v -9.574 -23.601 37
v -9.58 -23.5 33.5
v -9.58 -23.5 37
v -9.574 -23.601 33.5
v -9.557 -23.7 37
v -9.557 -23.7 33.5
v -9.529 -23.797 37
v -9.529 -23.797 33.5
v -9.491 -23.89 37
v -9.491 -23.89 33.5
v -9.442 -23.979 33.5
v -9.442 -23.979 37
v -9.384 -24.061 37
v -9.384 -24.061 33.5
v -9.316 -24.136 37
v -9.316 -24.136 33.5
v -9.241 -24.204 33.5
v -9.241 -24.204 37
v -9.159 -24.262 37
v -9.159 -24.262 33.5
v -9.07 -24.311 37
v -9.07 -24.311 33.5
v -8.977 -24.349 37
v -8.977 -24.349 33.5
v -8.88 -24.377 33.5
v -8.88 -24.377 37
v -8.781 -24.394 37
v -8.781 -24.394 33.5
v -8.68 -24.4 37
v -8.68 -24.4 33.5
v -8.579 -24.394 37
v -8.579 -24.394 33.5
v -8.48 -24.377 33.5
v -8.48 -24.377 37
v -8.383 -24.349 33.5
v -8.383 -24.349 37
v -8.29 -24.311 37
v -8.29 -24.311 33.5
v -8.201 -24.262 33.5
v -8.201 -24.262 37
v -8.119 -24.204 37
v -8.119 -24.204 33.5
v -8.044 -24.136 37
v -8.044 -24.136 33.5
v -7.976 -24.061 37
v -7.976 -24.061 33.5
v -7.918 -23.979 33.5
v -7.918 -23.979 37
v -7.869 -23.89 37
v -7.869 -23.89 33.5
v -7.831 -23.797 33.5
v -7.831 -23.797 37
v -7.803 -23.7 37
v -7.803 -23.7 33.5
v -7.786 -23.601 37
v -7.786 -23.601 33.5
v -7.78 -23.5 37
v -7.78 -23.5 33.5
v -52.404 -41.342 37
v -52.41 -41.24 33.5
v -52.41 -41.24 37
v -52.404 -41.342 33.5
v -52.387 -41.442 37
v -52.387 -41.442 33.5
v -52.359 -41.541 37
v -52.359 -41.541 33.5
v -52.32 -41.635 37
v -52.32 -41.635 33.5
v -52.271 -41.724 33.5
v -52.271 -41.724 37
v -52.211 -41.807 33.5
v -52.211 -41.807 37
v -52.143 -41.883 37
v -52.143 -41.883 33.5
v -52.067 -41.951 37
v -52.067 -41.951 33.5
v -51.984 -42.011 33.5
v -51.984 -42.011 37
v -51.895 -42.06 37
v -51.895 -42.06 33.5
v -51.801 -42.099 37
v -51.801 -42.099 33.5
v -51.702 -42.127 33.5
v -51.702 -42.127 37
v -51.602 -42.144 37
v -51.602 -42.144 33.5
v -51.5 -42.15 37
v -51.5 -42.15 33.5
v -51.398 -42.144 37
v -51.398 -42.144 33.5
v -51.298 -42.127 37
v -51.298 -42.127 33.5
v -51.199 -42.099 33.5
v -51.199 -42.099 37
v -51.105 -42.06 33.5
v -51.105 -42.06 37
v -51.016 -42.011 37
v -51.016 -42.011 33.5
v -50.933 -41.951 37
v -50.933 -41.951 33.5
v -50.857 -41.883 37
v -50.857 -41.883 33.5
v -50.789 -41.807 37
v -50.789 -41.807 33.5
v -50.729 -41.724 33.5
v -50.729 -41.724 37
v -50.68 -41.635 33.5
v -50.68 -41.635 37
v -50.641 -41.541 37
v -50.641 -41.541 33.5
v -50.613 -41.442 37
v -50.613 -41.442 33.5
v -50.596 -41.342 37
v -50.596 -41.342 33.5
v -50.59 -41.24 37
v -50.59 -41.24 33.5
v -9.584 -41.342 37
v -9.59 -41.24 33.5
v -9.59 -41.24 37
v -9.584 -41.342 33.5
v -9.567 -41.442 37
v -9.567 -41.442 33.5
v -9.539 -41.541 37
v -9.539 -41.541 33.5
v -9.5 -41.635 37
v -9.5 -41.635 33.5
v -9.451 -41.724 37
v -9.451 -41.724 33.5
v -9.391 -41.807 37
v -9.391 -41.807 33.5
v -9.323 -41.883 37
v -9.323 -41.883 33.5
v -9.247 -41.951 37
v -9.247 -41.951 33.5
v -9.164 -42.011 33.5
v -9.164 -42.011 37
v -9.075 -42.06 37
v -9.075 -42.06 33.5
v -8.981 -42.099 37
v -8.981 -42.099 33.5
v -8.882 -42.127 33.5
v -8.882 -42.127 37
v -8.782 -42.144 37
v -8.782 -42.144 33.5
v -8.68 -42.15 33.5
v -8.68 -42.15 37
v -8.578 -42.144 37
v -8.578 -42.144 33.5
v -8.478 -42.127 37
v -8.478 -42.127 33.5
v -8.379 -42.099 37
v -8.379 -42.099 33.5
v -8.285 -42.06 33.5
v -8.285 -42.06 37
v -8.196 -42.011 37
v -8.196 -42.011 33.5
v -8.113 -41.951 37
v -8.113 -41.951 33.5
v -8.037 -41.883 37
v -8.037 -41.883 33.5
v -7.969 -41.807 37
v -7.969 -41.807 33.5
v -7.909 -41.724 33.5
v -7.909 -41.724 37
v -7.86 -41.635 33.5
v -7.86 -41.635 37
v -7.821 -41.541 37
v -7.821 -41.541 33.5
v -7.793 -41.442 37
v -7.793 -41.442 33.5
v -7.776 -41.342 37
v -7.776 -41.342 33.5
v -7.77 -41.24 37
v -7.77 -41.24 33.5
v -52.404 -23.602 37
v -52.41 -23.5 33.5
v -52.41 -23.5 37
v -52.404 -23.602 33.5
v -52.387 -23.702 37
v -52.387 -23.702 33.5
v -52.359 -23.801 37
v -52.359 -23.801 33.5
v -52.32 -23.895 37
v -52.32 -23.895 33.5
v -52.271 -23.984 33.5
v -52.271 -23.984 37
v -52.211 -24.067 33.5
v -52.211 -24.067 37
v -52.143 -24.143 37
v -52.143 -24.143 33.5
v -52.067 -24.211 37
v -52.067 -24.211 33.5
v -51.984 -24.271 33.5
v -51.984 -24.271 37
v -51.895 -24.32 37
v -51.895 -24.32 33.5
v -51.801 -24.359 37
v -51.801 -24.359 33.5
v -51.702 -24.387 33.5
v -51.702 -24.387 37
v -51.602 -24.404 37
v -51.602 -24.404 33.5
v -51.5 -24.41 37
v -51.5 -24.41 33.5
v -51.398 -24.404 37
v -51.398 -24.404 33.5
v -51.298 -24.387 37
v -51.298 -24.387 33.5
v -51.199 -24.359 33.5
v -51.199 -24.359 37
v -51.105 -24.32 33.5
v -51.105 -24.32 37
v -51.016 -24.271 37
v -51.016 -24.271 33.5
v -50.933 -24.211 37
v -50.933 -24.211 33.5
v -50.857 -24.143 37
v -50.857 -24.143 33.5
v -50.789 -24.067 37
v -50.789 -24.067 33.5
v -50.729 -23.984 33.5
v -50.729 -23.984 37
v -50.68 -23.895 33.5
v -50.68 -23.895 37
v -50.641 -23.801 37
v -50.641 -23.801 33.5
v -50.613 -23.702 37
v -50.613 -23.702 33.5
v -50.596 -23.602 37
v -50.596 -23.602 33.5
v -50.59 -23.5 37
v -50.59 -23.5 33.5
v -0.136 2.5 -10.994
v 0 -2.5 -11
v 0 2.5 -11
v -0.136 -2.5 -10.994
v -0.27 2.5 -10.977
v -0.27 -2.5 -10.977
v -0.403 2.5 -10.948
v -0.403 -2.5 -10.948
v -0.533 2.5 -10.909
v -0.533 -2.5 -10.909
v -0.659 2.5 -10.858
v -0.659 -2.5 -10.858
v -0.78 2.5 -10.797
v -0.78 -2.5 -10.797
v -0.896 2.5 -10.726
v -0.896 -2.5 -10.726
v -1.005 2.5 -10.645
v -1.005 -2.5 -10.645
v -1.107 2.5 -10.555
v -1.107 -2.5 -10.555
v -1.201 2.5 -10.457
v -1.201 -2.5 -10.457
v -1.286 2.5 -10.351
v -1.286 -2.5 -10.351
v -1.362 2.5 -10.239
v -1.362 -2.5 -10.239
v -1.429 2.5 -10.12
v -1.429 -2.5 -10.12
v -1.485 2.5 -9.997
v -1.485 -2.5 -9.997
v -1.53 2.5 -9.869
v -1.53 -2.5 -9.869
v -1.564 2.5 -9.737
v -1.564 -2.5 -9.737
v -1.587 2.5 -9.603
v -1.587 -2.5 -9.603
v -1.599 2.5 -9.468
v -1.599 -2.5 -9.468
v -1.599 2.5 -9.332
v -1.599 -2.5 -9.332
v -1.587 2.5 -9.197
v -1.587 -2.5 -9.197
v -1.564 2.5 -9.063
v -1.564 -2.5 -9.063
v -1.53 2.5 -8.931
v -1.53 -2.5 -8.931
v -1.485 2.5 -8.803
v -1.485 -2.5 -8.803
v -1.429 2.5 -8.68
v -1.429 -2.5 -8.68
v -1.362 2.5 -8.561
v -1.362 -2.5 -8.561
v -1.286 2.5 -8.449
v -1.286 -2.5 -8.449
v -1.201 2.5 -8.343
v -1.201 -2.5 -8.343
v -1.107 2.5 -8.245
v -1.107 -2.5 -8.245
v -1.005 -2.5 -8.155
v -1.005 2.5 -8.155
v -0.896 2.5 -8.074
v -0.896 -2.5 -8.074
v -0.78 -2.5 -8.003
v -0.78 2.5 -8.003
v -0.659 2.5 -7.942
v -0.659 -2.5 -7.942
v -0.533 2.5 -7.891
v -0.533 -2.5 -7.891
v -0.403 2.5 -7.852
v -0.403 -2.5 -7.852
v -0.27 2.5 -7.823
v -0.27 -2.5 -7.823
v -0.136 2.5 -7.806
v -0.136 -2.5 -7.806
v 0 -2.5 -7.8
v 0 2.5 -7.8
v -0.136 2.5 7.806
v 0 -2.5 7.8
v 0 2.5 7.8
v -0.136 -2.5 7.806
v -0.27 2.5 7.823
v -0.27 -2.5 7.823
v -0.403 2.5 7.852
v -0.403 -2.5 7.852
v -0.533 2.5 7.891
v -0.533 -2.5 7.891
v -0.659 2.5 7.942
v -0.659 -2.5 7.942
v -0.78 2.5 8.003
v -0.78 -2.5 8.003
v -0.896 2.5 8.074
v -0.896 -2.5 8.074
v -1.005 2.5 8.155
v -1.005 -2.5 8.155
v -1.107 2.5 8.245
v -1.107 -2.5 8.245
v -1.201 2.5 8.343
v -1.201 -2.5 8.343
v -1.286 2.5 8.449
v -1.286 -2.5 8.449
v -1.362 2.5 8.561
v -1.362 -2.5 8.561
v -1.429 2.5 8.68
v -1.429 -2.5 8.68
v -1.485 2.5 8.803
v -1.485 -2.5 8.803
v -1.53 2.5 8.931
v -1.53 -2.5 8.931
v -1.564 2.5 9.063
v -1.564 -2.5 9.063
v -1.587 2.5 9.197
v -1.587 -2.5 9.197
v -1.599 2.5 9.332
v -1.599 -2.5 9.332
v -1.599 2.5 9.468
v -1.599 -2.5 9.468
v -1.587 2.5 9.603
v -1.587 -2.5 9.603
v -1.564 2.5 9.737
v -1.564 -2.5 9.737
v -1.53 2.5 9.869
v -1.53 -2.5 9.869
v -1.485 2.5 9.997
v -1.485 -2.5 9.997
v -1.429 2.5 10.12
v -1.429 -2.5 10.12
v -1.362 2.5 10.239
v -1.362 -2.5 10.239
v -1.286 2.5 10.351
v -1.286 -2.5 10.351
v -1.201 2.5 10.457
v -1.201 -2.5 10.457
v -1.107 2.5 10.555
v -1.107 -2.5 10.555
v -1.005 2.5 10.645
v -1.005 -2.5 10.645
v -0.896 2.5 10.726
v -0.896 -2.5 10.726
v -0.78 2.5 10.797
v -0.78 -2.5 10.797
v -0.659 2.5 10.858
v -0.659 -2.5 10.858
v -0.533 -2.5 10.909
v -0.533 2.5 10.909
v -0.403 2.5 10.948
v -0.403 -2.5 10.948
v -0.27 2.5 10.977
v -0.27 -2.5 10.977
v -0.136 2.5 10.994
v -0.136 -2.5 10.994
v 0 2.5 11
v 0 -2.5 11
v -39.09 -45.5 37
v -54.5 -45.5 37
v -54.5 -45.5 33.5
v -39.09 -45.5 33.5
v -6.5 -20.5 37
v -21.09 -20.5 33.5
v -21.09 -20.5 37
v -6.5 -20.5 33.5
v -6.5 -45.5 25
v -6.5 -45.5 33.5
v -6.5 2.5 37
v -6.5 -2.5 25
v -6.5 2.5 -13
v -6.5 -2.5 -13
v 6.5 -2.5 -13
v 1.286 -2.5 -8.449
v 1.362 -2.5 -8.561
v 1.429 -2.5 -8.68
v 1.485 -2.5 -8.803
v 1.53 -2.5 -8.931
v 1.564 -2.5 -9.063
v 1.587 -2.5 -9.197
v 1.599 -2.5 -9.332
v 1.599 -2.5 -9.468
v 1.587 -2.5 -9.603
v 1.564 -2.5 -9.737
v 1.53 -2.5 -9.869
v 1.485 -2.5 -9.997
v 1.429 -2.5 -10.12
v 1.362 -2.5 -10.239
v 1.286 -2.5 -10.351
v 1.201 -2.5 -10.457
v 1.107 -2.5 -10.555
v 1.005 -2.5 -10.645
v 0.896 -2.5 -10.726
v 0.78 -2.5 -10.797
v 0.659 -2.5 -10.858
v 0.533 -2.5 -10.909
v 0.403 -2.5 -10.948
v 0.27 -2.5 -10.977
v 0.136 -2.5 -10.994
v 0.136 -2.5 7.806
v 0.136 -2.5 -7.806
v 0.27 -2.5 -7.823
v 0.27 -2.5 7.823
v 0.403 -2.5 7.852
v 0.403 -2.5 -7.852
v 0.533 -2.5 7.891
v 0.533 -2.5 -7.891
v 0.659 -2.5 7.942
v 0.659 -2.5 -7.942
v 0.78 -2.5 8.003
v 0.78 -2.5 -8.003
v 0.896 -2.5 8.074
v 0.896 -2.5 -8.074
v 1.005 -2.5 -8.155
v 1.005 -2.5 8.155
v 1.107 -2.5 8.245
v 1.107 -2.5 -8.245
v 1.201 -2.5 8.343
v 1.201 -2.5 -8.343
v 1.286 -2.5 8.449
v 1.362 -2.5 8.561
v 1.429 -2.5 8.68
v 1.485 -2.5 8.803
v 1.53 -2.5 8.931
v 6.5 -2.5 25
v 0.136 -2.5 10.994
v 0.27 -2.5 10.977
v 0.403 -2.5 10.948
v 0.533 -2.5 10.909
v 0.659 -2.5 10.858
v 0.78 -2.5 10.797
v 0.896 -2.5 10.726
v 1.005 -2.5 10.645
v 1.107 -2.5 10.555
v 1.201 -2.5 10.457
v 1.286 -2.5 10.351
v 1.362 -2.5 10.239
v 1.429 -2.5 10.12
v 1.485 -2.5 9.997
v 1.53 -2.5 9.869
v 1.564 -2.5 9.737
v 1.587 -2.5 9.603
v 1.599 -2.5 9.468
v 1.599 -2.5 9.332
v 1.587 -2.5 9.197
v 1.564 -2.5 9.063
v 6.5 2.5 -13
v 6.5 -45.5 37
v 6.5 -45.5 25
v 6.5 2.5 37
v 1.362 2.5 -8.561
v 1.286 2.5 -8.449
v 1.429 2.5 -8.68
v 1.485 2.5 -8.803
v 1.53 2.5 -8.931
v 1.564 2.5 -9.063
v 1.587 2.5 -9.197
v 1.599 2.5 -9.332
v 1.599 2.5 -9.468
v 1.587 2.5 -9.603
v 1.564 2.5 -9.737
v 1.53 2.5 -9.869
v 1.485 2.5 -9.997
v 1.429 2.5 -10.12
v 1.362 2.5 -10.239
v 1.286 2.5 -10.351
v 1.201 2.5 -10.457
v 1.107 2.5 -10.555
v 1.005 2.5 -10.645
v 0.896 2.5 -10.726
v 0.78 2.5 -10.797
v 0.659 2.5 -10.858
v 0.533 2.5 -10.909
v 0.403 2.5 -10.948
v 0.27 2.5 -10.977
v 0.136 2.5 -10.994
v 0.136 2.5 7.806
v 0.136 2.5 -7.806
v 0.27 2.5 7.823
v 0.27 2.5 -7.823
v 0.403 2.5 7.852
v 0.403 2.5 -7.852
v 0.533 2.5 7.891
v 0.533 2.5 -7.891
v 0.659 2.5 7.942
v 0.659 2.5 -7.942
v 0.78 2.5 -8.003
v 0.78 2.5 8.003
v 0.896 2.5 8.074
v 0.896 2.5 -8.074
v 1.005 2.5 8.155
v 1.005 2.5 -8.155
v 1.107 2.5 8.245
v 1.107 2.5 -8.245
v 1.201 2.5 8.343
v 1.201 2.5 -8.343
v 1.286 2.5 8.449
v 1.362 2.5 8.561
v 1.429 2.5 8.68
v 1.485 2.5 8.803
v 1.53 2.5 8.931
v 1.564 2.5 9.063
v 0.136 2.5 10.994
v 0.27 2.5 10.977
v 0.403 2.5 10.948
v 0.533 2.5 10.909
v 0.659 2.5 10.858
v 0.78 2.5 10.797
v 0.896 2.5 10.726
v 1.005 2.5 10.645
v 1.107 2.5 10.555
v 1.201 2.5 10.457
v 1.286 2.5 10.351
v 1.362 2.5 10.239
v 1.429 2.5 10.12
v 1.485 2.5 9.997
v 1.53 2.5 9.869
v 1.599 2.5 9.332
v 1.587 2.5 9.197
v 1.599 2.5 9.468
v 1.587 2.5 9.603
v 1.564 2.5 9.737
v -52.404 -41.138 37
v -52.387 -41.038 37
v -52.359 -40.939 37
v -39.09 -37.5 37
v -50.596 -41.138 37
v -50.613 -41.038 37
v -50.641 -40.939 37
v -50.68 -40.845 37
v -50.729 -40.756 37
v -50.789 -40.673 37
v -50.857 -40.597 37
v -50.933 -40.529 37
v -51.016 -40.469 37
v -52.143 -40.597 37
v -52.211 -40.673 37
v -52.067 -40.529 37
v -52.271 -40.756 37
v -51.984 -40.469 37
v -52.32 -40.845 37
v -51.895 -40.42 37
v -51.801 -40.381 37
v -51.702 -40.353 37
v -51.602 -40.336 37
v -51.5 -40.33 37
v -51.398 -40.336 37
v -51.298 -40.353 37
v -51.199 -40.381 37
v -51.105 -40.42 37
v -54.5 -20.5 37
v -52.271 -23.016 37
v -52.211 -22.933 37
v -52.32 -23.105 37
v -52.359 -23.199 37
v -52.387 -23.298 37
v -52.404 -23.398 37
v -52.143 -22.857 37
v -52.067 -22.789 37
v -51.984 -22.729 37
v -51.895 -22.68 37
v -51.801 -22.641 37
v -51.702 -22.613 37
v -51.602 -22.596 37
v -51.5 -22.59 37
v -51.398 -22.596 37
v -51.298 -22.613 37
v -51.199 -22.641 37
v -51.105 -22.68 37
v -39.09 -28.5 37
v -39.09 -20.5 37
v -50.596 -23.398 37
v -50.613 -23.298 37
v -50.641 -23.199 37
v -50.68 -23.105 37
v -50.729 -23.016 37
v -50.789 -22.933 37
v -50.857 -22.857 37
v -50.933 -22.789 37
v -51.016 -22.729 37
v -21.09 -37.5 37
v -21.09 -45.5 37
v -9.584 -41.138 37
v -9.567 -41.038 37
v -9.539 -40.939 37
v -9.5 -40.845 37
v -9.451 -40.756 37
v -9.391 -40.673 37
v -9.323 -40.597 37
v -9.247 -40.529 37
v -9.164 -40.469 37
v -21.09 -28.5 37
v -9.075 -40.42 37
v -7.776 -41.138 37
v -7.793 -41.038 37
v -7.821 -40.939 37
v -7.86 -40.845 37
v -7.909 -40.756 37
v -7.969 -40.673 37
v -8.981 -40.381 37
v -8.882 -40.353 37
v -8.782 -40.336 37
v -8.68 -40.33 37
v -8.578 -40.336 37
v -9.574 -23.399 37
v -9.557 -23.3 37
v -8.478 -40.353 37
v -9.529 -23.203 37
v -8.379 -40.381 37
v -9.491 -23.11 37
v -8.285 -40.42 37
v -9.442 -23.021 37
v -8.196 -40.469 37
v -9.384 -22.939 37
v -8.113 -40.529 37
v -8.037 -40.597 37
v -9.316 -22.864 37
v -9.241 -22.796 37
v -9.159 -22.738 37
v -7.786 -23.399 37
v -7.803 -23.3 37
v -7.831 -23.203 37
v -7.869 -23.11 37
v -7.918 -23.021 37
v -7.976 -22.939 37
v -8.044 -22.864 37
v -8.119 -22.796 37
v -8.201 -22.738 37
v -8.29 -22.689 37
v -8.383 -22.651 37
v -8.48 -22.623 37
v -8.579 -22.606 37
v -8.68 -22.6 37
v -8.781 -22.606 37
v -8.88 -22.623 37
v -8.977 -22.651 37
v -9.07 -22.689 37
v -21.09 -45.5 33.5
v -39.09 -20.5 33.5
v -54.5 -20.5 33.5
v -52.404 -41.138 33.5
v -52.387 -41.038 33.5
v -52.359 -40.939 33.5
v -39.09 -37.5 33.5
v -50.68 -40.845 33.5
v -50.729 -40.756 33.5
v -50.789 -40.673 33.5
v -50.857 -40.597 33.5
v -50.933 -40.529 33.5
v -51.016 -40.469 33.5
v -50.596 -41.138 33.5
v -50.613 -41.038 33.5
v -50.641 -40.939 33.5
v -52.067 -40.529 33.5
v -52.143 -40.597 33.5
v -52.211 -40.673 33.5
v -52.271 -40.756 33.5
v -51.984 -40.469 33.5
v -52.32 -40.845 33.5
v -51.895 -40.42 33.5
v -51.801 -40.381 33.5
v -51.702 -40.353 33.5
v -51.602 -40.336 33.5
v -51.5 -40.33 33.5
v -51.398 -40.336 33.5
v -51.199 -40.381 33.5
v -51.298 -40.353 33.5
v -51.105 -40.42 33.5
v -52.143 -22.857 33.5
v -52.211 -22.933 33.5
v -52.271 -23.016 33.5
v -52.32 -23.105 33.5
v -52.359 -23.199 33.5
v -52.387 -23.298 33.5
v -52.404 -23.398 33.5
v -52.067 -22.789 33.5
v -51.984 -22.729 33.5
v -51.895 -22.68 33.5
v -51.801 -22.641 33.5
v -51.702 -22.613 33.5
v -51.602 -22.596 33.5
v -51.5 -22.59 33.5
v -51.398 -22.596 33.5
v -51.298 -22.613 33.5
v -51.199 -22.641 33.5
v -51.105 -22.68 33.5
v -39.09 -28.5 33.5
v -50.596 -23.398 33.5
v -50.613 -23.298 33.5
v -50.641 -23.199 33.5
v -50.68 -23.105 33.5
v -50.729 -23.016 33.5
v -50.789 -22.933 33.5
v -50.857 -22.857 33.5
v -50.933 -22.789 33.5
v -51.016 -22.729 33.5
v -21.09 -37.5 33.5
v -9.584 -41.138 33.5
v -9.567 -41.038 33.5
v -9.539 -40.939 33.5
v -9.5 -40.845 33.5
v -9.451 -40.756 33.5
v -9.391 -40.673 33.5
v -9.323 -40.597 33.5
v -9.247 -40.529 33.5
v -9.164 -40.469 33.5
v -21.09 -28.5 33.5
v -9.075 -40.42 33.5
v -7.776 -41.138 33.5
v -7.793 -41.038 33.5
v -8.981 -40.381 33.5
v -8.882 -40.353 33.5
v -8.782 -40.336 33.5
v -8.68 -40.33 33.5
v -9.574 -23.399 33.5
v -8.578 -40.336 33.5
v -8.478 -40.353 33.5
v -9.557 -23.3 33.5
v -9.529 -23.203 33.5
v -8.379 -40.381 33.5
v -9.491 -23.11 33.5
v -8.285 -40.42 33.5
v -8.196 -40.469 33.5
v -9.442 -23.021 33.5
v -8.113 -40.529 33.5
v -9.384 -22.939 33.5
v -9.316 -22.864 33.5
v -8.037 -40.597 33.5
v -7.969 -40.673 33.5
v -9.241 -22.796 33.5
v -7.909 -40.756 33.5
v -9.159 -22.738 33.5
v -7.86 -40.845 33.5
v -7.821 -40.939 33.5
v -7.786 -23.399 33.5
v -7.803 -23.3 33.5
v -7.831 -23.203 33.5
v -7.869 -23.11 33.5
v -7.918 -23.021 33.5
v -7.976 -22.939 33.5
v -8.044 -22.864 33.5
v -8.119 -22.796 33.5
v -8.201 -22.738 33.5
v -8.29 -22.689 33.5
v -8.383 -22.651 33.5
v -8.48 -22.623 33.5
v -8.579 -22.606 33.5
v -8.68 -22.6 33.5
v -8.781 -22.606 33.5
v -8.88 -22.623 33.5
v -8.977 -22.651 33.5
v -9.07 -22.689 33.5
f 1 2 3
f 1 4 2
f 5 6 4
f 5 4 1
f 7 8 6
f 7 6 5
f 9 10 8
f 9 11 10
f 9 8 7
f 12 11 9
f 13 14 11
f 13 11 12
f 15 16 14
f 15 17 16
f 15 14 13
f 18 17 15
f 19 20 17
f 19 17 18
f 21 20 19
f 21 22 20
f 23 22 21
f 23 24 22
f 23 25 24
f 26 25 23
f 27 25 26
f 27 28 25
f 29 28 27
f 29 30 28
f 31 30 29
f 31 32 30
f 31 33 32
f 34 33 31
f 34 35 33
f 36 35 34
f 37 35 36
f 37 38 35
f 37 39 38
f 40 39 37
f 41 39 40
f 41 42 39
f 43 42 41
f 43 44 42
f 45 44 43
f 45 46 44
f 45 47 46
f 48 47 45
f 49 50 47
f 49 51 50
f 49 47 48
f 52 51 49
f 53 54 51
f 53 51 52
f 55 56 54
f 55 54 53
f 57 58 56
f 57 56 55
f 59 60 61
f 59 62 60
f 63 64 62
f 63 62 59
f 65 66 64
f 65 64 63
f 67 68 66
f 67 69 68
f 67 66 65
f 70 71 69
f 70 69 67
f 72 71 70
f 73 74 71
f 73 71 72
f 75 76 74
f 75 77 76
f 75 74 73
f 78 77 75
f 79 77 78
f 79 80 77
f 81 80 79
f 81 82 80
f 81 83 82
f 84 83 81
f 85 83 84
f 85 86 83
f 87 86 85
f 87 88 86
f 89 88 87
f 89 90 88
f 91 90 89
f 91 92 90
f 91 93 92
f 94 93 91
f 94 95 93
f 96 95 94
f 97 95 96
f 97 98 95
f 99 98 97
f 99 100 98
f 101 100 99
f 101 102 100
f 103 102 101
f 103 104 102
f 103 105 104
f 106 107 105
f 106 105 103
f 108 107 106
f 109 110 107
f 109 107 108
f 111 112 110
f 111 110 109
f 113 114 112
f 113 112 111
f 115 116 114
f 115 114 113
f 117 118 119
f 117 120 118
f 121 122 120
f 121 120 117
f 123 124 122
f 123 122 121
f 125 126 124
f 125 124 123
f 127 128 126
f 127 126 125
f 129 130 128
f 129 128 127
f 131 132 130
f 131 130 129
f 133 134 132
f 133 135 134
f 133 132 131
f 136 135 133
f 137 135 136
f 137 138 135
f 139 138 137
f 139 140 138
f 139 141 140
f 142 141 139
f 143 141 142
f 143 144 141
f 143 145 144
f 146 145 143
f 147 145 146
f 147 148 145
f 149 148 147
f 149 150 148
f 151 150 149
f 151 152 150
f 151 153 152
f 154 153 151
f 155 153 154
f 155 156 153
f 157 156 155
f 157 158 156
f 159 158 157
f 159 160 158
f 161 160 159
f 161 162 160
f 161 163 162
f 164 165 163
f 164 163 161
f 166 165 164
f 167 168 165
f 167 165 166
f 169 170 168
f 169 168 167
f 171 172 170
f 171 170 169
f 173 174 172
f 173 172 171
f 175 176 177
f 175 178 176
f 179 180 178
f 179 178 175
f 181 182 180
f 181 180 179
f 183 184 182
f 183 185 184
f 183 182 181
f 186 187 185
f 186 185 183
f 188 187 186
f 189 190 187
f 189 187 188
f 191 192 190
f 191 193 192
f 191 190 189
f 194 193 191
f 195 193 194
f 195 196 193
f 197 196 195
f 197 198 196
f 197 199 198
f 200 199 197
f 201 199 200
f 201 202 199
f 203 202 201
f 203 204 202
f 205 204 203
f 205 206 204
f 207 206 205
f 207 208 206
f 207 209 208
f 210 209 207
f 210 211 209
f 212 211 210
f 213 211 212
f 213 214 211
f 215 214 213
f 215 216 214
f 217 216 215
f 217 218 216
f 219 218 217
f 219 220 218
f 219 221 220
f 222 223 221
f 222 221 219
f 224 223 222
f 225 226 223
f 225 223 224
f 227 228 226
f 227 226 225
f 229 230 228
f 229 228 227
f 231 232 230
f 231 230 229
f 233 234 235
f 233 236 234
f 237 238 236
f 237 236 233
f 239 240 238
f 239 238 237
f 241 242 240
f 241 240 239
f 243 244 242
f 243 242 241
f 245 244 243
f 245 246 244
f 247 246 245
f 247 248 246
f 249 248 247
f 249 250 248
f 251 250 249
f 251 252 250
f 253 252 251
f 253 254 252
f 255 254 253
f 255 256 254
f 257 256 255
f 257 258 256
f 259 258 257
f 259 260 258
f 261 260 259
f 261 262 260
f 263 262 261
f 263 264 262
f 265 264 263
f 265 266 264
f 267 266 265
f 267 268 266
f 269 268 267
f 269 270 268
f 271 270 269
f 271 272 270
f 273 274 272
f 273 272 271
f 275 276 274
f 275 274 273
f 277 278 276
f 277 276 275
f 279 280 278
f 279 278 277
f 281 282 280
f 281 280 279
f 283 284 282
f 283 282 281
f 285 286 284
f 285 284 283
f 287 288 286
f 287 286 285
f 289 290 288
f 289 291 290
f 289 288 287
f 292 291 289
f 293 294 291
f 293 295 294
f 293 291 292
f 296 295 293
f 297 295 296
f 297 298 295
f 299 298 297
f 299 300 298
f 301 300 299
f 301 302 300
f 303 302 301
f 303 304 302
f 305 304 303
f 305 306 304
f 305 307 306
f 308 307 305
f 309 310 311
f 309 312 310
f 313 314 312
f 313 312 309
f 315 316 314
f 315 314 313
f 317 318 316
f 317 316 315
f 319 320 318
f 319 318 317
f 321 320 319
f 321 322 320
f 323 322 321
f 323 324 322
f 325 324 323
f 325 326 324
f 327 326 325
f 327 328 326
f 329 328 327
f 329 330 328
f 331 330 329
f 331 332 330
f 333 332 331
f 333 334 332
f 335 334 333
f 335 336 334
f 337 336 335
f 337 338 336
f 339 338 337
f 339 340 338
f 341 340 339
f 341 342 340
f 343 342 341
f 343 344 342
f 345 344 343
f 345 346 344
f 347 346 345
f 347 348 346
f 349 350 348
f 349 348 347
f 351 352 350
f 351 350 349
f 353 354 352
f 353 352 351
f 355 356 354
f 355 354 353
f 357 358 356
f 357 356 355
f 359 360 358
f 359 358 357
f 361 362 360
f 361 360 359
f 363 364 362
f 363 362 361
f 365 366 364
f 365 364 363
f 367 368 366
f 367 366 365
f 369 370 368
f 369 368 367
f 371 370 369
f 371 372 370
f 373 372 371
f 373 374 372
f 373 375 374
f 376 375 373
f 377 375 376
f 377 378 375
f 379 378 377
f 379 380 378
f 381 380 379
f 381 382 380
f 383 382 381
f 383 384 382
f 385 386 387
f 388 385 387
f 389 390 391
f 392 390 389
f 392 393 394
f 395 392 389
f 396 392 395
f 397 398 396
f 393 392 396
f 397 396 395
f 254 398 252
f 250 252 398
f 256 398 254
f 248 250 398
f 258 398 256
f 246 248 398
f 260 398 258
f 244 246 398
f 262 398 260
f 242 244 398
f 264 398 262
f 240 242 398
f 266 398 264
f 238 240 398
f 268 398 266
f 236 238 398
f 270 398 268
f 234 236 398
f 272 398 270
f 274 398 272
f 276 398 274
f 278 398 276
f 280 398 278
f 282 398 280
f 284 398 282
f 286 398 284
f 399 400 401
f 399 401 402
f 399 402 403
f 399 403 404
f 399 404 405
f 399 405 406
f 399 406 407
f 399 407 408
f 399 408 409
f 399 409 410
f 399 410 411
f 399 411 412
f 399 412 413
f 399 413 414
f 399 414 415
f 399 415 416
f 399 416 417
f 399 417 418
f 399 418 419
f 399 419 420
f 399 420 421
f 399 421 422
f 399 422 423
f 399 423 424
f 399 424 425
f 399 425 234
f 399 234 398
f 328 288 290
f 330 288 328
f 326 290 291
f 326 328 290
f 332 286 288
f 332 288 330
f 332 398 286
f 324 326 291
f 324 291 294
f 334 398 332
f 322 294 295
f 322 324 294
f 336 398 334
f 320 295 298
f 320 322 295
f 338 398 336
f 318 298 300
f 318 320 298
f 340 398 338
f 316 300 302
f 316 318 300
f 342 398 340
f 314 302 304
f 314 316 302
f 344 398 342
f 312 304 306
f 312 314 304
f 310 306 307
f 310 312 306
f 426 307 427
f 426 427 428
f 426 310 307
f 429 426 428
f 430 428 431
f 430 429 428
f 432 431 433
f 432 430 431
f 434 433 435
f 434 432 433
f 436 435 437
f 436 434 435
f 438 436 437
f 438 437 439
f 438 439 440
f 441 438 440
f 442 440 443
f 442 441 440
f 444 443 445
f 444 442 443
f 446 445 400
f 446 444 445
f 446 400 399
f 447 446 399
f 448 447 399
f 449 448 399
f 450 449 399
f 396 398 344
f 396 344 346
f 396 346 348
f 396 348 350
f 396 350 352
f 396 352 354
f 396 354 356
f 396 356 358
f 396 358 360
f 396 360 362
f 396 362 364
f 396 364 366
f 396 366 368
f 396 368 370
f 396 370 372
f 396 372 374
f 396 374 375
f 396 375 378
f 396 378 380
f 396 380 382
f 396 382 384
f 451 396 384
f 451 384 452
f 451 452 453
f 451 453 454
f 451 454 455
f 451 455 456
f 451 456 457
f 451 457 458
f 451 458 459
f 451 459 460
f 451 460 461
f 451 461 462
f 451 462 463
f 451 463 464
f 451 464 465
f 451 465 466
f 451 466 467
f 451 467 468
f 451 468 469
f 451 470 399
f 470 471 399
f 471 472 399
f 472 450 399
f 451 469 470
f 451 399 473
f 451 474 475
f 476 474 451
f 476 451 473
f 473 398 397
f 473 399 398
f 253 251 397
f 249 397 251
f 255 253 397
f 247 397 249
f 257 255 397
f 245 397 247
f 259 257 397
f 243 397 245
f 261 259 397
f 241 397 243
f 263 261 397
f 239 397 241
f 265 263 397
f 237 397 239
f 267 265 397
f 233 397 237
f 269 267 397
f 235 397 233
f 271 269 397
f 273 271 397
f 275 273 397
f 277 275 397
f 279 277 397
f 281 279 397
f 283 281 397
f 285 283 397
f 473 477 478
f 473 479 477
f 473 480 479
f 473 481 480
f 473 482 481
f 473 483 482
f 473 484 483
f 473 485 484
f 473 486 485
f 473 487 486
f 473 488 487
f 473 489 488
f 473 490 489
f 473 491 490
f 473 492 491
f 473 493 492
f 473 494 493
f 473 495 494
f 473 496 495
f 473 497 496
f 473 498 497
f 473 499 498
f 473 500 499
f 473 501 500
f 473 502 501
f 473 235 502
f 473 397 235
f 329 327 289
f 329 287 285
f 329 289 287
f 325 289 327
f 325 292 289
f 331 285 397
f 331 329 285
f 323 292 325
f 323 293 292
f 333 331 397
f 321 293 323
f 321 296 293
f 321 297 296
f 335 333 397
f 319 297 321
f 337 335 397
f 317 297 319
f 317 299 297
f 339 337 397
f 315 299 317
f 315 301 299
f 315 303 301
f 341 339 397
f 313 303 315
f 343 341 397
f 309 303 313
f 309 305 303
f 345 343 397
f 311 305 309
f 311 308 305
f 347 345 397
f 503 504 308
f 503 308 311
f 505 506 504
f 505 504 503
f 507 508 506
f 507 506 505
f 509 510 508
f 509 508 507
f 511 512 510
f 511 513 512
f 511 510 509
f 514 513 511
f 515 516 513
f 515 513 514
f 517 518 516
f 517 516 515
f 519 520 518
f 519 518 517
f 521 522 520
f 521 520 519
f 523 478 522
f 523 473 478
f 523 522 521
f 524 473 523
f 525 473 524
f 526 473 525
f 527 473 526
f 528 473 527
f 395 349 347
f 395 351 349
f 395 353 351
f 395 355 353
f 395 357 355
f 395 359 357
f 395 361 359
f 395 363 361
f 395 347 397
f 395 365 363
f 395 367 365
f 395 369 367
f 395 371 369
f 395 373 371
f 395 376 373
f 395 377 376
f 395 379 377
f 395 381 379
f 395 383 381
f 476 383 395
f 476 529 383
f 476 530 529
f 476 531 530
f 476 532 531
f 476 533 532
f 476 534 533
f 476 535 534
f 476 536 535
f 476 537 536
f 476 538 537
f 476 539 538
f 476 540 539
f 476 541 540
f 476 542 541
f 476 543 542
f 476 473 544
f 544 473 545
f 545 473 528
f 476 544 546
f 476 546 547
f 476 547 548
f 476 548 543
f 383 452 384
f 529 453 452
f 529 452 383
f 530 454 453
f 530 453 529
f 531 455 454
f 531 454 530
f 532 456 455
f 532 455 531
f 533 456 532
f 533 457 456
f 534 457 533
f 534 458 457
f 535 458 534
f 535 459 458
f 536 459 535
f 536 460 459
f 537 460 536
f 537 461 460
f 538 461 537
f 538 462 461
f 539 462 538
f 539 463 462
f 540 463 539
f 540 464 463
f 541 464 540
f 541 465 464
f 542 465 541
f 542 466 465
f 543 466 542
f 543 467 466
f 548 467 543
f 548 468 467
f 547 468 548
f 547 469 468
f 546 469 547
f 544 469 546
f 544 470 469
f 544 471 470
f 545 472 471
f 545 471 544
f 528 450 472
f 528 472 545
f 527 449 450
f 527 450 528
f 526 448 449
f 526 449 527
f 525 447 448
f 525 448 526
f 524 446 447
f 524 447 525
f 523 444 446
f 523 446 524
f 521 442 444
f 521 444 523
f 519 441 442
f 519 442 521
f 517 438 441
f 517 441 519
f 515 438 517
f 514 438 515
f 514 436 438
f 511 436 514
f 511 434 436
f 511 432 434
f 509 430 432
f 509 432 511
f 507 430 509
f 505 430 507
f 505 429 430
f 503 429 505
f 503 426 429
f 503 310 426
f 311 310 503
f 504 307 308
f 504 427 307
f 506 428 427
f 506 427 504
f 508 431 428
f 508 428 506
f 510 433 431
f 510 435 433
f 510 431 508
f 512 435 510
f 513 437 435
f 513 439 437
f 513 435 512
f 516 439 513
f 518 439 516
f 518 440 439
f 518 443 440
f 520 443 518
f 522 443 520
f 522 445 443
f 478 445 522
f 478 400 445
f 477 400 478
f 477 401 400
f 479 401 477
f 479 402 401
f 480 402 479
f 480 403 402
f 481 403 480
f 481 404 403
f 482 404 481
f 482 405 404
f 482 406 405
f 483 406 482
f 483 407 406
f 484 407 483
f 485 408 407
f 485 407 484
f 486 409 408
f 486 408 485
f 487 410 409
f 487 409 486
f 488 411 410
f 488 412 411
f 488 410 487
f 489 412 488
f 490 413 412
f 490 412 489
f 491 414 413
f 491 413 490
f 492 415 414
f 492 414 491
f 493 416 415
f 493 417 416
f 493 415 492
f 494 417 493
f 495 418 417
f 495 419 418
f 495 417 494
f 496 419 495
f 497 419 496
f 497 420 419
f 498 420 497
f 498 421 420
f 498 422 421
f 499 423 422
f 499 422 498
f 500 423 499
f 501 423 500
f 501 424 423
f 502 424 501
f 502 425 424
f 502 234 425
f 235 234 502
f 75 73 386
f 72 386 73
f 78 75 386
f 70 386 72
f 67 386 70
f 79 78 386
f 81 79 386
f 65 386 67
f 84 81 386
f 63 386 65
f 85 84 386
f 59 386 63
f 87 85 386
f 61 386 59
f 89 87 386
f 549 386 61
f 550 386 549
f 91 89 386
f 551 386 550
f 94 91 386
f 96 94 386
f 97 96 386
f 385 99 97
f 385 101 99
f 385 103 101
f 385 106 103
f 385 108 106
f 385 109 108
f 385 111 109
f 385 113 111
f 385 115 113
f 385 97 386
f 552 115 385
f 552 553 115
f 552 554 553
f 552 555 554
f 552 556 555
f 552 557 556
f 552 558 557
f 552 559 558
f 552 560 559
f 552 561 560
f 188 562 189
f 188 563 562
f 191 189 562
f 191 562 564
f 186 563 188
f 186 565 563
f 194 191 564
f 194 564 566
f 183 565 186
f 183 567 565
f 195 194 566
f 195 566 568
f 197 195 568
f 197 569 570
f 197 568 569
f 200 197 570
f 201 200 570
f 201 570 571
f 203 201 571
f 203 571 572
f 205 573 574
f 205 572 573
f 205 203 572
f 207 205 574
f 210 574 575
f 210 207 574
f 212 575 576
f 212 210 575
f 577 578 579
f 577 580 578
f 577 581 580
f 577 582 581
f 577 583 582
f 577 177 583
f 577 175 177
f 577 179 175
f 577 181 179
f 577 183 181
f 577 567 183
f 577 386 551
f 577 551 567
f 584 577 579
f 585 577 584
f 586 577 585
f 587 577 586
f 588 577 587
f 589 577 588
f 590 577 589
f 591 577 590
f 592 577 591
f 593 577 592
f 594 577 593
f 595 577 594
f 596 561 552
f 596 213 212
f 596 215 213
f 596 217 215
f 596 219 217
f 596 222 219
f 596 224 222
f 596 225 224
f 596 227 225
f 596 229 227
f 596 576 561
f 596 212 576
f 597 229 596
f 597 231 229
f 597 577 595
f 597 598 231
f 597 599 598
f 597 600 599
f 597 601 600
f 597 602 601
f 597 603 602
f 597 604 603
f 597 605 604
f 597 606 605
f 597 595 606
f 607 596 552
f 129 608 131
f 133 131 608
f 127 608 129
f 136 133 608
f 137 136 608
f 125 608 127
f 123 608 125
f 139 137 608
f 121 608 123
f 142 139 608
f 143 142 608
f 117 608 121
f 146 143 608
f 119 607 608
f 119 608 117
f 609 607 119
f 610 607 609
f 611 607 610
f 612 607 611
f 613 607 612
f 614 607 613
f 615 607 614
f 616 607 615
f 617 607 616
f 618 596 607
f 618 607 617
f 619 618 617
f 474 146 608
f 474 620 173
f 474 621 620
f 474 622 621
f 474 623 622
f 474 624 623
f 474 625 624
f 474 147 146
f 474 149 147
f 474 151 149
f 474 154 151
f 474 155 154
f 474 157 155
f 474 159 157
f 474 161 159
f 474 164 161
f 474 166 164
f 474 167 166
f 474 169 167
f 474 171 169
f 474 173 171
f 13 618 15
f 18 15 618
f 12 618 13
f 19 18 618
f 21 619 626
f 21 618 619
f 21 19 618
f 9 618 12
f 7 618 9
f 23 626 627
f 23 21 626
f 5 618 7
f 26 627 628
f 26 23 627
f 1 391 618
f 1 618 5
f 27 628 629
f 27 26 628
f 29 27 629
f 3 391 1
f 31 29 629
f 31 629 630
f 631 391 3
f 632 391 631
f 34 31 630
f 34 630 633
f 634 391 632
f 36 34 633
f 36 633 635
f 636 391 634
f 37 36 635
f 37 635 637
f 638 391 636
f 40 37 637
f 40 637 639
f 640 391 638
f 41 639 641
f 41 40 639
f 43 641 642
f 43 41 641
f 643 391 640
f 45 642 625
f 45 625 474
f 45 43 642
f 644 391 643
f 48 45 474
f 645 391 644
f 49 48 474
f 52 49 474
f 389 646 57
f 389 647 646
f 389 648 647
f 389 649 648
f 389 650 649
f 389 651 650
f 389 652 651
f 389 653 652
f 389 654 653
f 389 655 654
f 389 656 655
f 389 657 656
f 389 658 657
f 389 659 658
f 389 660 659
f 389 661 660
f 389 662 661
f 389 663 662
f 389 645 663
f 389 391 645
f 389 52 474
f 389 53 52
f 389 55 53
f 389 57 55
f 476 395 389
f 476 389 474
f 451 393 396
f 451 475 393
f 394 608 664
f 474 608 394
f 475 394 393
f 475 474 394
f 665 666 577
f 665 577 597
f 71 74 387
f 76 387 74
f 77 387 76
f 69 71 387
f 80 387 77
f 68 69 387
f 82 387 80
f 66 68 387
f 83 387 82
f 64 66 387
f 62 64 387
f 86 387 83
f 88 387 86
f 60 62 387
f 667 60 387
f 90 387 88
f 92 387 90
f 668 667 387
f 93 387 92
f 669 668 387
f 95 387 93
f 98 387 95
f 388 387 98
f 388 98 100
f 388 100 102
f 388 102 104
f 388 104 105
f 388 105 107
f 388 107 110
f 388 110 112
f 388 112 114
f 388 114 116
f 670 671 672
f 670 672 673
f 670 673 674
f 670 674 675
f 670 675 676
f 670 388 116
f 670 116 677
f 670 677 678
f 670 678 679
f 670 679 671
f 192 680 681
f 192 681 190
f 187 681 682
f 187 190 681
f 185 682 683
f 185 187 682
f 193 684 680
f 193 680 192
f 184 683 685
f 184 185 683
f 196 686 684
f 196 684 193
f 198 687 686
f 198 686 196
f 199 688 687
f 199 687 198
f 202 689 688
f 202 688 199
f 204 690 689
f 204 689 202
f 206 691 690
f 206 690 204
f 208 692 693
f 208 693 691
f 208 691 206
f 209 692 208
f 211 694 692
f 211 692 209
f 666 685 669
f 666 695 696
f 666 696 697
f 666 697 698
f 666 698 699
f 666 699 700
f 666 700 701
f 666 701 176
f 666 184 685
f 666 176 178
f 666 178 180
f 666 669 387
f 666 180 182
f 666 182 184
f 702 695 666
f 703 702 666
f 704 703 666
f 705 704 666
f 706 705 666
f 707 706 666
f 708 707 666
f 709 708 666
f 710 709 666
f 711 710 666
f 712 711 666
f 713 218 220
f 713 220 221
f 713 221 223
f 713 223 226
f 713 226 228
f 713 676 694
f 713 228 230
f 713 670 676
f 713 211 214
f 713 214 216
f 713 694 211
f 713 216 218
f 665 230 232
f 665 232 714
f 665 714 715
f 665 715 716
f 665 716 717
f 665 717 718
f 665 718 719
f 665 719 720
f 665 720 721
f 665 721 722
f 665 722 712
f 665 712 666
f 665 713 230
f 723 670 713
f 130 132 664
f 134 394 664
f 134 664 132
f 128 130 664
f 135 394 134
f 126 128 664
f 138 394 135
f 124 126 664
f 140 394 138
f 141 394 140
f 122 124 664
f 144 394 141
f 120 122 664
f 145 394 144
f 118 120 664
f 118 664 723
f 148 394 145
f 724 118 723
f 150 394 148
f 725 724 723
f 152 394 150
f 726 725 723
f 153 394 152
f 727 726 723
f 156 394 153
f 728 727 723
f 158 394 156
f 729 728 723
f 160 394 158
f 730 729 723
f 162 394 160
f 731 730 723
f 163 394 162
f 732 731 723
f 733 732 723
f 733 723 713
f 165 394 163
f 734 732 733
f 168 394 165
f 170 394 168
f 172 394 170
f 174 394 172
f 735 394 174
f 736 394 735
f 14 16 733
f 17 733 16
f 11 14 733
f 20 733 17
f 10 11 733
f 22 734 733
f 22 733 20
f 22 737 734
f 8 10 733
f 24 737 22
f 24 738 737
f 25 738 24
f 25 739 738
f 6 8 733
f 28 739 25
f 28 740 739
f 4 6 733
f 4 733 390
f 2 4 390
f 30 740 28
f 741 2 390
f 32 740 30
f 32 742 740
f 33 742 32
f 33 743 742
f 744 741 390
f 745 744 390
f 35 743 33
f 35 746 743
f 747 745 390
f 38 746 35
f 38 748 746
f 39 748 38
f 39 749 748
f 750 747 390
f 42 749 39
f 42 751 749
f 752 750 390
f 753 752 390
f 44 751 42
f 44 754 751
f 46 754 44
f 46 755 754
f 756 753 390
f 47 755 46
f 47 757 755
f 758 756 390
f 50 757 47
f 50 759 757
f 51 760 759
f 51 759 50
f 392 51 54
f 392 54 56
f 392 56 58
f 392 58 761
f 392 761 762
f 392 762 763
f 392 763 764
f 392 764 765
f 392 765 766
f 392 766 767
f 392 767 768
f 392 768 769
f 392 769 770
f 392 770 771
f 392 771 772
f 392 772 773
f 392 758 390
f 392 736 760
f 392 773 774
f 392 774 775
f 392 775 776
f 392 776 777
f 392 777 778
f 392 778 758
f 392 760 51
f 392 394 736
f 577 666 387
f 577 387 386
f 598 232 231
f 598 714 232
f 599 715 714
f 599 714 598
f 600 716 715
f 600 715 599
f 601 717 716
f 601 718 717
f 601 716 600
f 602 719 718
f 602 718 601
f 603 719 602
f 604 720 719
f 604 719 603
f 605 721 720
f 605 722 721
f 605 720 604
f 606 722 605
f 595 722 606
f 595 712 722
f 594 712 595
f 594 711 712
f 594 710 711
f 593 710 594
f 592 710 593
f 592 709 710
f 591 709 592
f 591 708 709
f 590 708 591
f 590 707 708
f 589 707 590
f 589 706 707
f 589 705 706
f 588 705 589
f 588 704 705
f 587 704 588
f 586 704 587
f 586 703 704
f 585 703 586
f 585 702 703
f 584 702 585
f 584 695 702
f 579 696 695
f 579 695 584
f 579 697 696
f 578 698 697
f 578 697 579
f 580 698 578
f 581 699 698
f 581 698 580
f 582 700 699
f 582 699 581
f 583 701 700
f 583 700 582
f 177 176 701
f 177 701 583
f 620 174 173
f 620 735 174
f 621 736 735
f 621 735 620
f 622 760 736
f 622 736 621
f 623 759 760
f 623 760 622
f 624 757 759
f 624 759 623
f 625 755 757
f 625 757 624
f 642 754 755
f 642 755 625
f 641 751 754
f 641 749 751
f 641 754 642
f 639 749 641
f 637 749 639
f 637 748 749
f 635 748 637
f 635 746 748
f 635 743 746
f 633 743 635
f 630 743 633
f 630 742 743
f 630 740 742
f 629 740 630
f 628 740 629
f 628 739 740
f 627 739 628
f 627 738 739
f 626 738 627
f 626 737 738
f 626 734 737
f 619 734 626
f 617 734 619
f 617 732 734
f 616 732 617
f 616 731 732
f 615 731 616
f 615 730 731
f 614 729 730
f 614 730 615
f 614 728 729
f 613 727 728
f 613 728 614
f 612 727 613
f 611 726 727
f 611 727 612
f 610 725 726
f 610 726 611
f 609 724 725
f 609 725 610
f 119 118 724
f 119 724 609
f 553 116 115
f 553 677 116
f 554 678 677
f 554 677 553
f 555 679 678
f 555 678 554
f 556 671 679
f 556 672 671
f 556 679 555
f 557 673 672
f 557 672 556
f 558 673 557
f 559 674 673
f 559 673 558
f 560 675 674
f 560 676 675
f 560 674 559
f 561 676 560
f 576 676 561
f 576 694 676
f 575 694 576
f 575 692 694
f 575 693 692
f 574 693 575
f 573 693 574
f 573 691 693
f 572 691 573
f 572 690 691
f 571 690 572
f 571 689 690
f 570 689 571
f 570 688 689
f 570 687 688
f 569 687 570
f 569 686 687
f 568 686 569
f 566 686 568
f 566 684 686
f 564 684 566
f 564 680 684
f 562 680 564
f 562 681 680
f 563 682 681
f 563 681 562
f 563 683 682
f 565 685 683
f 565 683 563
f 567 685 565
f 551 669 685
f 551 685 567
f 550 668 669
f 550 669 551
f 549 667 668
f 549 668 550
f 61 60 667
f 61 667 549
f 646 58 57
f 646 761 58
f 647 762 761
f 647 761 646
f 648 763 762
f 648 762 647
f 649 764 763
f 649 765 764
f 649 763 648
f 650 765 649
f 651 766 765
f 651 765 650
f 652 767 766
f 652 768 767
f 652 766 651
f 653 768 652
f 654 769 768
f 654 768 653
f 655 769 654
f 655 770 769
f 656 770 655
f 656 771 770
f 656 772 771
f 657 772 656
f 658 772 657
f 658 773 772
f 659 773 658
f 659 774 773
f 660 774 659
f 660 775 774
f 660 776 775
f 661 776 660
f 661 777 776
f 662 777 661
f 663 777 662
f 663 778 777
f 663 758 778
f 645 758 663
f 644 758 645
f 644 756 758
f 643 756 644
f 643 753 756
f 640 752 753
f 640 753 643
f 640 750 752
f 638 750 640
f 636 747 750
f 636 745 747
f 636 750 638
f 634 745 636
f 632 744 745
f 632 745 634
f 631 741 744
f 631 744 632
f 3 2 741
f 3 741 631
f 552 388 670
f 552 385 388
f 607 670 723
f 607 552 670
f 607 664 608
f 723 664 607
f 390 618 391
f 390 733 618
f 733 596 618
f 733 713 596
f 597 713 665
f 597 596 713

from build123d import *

# Parameters (mm, degrees)
SKETCH_1_W          = 13
SKETCH_1_H          = 26
EXTRUDE_1_DEPTH     = 2.5
SKETCH_2_R          = 1.6
CUT_EXTRUDE_1_DEPTH = 13
SKETCH_3_W          = 13
SKETCH_3_H          = 5
EXTRUDE_2_DEPTH     = 24
SKETCH_4_W          = 13
SKETCH_4_H          = 12
EXTRUDE_3_DEPTH     = 43
SKETCH_5_W          = 3.5
SKETCH_5_H          = 25
EXTRUDE_4_DEPTH     = 48
SKETCH_6_R          = 0.91
SKETCH_6_R_2        = 0.9
CUT_EXTRUDE_2_DEPTH = 16
SKETCH_7_W          = 18
SKETCH_7_H          = 8
CUT_EXTRUDE_3_DEPTH = 16


with BuildPart() as part:
    # 草图1 → 凸台-拉伸1 (new, symmetric)
    with BuildSketch(Plane(origin=(0, 0, 0), x_dir=(1, 0, 0), z_dir=(0, 1, 0))):
        Rectangle(SKETCH_1_W, SKETCH_1_H)
    extrude(amount=EXTRUDE_1_DEPTH, both=True)

    # 草图2 → 切除-拉伸1 (cut)
    with BuildSketch(Plane(origin=(0, 2.5, 0), x_dir=(1, 0, 0), z_dir=(0, 1, 0))):
        with Locations(Location((0, 9.4, 0), (0, 0, 270))):
            Circle(SKETCH_2_R)
        with Locations(Location((0, -9.4, 0), (0, 0, 270))):
            Circle(SKETCH_2_R)
    extrude(amount=-CUT_EXTRUDE_1_DEPTH, mode=Mode.SUBTRACT)

    # 草图3 → 凸台-拉伸2 (add)
    with BuildSketch(Plane.XY.offset(13)):
        Rectangle(SKETCH_3_W, SKETCH_3_H)
    extrude(amount=EXTRUDE_2_DEPTH)

    # 草图4 → 凸台-拉伸3 (add)
    with BuildSketch(Plane.XZ.offset(2.5)):
        with Locations((0, 31)):
            Rectangle(SKETCH_4_W, SKETCH_4_H)
    extrude(amount=EXTRUDE_3_DEPTH)

    # 草图5 → 凸台-拉伸4 (add)
    with BuildSketch(Plane.ZY.offset(6.5)):
        with Locations((35.25, -33)):
            Rectangle(SKETCH_5_W, SKETCH_5_H)
    extrude(amount=EXTRUDE_4_DEPTH)

    # 草图6 → 切除-拉伸2 (cut)
    with BuildSketch(Plane.XY.offset(37)):
        with Locations((-51.5, -23.5)):
            Circle(SKETCH_6_R)
        with Locations((-8.68, -23.5)):
            Circle(SKETCH_6_R_2)
        with Locations((-51.5, -41.24)):
            Circle(SKETCH_6_R)
        with Locations((-8.68, -41.24)):
            Circle(SKETCH_6_R)
    extrude(amount=-CUT_EXTRUDE_2_DEPTH, mode=Mode.SUBTRACT)

    # 草图7 → 切除-拉伸3 (cut)
    with BuildSketch(Plane.XY.offset(37)):
        with Locations((-30.09, -24.5)):
            Rectangle(SKETCH_7_W, SKETCH_7_H)
        with Locations((-30.09, -41.5)):
            Rectangle(SKETCH_7_W, SKETCH_7_H)
    extrude(amount=-CUT_EXTRUDE_3_DEPTH, mode=Mode.SUBTRACT)


solid = part.part
